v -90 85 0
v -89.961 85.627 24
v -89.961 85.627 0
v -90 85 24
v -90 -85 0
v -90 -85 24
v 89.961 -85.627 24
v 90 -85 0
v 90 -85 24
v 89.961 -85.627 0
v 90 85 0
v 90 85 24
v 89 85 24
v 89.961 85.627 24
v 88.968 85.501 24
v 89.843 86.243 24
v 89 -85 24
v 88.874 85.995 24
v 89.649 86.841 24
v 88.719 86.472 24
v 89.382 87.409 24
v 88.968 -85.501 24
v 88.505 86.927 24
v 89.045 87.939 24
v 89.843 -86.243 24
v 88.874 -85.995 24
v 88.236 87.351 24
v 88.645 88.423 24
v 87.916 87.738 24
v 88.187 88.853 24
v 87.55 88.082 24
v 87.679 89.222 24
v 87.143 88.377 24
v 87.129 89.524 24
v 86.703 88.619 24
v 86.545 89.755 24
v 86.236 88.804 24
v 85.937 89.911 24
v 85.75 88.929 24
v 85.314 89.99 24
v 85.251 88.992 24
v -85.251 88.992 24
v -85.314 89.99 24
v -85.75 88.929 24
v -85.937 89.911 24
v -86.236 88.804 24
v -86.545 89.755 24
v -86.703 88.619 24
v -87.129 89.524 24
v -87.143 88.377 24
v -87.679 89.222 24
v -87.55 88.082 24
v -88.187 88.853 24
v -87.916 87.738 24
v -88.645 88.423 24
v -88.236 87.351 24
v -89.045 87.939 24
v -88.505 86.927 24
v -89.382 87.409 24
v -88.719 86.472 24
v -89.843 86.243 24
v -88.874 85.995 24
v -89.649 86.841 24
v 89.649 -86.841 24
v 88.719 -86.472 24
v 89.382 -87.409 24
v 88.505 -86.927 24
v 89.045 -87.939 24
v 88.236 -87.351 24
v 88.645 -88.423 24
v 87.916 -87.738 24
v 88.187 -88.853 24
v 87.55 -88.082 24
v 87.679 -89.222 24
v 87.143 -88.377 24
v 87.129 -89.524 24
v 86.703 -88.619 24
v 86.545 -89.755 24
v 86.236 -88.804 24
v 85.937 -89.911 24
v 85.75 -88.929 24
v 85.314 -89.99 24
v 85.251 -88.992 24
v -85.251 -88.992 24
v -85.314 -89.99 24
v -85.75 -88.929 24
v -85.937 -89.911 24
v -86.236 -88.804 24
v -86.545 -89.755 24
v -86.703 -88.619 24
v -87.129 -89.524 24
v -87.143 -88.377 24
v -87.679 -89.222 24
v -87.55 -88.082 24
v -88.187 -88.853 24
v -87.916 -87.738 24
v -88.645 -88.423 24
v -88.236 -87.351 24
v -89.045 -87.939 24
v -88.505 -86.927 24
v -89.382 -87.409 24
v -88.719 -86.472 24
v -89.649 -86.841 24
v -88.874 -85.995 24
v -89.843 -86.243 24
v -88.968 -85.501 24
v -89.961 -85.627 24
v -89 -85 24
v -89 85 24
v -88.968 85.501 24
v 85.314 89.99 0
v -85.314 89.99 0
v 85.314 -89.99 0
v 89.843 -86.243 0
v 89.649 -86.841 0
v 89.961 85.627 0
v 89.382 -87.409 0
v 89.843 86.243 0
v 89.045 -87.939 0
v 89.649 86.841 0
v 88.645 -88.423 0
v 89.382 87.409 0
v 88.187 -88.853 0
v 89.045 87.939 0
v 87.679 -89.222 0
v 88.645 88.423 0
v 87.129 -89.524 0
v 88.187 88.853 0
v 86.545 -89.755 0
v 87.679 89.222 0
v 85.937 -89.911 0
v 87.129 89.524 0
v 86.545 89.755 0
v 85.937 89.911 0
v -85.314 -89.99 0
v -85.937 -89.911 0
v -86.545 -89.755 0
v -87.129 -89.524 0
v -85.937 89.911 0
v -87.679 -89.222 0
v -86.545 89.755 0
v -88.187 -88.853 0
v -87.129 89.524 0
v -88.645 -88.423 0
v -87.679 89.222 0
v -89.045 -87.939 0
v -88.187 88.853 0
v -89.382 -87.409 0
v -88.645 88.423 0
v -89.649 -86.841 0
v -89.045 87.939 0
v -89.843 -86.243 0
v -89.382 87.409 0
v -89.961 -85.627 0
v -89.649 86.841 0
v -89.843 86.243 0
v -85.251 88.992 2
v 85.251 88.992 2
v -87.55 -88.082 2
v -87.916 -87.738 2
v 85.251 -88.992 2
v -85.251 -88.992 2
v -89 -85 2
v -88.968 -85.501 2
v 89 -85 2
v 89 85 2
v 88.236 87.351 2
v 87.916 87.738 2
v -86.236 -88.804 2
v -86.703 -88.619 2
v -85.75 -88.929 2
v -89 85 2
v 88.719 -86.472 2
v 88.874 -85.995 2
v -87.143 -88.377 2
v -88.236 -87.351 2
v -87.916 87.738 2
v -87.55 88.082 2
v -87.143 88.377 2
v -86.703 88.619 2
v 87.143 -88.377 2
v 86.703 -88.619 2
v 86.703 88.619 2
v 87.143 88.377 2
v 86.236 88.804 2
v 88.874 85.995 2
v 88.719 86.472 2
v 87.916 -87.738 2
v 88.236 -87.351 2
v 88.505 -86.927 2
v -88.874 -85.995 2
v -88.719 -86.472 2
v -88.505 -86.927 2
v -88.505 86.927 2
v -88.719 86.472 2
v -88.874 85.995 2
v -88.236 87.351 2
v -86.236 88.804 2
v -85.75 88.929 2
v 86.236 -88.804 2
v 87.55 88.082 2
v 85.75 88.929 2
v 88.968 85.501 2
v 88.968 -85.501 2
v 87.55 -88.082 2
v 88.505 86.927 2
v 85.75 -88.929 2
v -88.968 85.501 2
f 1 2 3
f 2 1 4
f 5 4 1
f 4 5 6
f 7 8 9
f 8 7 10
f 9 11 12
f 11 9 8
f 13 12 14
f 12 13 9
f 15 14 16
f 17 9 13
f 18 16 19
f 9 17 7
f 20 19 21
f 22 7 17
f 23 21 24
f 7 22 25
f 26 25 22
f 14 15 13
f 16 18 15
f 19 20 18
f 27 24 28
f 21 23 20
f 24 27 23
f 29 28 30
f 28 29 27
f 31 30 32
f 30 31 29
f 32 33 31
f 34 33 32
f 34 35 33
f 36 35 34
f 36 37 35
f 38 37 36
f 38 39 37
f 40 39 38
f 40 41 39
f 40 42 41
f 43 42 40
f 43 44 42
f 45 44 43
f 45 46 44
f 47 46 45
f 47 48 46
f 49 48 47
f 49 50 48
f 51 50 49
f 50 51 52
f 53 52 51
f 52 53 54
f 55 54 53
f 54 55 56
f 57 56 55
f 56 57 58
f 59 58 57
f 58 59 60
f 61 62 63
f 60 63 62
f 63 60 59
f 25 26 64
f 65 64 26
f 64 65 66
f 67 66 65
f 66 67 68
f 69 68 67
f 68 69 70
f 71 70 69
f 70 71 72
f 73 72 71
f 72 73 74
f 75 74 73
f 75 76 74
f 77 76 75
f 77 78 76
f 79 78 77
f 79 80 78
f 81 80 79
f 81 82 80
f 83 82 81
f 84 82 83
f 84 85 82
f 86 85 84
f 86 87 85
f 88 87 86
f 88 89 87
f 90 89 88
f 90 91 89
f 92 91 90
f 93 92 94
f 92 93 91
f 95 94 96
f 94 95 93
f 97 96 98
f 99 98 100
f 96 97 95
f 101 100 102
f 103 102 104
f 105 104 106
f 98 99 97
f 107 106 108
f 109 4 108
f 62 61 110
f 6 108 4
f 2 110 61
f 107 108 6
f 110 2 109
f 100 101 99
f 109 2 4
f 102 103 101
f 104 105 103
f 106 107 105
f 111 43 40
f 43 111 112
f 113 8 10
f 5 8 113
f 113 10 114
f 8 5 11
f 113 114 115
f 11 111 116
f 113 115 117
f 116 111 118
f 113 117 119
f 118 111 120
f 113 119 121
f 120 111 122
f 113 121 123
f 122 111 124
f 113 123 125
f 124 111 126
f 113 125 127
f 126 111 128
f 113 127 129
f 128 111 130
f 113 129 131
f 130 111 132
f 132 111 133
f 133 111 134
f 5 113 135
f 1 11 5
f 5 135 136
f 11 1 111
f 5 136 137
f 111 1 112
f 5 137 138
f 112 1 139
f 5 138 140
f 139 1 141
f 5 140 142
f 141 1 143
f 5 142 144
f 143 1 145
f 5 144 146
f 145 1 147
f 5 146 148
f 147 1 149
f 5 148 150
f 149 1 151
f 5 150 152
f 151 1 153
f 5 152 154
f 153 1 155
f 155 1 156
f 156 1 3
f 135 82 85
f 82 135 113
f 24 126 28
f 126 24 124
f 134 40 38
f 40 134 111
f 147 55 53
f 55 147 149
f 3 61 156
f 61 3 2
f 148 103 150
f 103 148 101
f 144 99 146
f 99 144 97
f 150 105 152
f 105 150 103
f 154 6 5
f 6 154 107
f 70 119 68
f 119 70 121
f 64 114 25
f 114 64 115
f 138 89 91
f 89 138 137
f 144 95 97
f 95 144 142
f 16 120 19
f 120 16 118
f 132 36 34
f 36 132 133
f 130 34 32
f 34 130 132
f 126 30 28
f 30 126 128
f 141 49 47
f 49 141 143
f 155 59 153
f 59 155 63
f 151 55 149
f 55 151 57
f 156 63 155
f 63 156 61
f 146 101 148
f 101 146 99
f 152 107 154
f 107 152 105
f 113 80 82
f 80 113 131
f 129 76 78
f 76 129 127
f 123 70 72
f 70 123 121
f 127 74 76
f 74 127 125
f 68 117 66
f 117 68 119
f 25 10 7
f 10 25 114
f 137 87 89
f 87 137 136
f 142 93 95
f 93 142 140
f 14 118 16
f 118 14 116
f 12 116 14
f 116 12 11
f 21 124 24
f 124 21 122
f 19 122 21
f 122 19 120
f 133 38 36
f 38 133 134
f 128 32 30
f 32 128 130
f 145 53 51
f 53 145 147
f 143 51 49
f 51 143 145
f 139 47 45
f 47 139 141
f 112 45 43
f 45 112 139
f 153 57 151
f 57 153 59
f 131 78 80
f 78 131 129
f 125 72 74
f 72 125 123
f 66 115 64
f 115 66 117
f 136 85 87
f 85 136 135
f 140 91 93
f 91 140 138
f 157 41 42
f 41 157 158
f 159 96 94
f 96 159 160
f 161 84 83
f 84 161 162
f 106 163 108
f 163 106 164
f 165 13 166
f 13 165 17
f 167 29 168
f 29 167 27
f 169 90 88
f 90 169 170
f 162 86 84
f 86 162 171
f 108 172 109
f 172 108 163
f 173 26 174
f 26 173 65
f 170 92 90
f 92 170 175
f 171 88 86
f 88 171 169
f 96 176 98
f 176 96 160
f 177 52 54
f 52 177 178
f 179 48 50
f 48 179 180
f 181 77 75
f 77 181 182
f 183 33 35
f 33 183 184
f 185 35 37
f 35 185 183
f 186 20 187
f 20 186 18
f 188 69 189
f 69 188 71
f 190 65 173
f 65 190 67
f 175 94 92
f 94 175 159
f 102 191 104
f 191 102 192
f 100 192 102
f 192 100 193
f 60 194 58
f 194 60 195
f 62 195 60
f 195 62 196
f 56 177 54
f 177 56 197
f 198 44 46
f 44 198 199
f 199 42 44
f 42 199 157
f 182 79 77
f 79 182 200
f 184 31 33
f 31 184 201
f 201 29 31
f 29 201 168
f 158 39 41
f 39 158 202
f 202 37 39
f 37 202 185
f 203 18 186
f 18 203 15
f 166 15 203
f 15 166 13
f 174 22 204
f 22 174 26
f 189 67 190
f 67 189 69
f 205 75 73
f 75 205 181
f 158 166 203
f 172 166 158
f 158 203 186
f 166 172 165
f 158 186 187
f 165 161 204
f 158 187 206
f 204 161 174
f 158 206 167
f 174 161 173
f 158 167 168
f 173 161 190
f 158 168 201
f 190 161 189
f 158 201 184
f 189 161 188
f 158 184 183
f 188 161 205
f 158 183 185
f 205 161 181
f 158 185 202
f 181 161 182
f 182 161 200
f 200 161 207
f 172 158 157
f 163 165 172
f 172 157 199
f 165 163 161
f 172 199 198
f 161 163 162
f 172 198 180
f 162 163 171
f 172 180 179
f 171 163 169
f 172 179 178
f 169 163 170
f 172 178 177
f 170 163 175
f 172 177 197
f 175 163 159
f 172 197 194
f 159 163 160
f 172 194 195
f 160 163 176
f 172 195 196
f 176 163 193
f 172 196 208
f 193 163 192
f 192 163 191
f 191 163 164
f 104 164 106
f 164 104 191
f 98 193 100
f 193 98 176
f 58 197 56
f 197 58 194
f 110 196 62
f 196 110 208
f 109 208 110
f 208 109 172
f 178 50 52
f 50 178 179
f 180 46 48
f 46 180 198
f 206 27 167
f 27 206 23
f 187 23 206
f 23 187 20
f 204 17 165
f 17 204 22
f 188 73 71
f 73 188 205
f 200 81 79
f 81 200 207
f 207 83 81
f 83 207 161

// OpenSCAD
$fn = 50;


difference() {
	union() {
		hull() {
			translate(v = [-85.0000000000, 85.0000000000, 0]) {
				cylinder(h = 24, r = 5);
			}
			translate(v = [85.0000000000, 85.0000000000, 0]) {
				cylinder(h = 24, r = 5);
			}
			translate(v = [-85.0000000000, -85.0000000000, 0]) {
				cylinder(h = 24, r = 5);
			}
			translate(v = [85.0000000000, -85.0000000000, 0]) {
				cylinder(h = 24, r = 5);
			}
		}
	}
	union() {
		translate(v = [0, 0, 2]) {
			hull() {
				translate(v = [-85.0000000000, 85.0000000000, 0]) {
					cylinder(h = 22, r = 4);
				}
				translate(v = [85.0000000000, 85.0000000000, 0]) {
					cylinder(h = 22, r = 4);
				}
				translate(v = [-85.0000000000, -85.0000000000, 0]) {
					cylinder(h = 22, r = 4);
				}
				translate(v = [85.0000000000, -85.0000000000, 0]) {
					cylinder(h = 22, r = 4);
				}
			}
		}
	}
}
